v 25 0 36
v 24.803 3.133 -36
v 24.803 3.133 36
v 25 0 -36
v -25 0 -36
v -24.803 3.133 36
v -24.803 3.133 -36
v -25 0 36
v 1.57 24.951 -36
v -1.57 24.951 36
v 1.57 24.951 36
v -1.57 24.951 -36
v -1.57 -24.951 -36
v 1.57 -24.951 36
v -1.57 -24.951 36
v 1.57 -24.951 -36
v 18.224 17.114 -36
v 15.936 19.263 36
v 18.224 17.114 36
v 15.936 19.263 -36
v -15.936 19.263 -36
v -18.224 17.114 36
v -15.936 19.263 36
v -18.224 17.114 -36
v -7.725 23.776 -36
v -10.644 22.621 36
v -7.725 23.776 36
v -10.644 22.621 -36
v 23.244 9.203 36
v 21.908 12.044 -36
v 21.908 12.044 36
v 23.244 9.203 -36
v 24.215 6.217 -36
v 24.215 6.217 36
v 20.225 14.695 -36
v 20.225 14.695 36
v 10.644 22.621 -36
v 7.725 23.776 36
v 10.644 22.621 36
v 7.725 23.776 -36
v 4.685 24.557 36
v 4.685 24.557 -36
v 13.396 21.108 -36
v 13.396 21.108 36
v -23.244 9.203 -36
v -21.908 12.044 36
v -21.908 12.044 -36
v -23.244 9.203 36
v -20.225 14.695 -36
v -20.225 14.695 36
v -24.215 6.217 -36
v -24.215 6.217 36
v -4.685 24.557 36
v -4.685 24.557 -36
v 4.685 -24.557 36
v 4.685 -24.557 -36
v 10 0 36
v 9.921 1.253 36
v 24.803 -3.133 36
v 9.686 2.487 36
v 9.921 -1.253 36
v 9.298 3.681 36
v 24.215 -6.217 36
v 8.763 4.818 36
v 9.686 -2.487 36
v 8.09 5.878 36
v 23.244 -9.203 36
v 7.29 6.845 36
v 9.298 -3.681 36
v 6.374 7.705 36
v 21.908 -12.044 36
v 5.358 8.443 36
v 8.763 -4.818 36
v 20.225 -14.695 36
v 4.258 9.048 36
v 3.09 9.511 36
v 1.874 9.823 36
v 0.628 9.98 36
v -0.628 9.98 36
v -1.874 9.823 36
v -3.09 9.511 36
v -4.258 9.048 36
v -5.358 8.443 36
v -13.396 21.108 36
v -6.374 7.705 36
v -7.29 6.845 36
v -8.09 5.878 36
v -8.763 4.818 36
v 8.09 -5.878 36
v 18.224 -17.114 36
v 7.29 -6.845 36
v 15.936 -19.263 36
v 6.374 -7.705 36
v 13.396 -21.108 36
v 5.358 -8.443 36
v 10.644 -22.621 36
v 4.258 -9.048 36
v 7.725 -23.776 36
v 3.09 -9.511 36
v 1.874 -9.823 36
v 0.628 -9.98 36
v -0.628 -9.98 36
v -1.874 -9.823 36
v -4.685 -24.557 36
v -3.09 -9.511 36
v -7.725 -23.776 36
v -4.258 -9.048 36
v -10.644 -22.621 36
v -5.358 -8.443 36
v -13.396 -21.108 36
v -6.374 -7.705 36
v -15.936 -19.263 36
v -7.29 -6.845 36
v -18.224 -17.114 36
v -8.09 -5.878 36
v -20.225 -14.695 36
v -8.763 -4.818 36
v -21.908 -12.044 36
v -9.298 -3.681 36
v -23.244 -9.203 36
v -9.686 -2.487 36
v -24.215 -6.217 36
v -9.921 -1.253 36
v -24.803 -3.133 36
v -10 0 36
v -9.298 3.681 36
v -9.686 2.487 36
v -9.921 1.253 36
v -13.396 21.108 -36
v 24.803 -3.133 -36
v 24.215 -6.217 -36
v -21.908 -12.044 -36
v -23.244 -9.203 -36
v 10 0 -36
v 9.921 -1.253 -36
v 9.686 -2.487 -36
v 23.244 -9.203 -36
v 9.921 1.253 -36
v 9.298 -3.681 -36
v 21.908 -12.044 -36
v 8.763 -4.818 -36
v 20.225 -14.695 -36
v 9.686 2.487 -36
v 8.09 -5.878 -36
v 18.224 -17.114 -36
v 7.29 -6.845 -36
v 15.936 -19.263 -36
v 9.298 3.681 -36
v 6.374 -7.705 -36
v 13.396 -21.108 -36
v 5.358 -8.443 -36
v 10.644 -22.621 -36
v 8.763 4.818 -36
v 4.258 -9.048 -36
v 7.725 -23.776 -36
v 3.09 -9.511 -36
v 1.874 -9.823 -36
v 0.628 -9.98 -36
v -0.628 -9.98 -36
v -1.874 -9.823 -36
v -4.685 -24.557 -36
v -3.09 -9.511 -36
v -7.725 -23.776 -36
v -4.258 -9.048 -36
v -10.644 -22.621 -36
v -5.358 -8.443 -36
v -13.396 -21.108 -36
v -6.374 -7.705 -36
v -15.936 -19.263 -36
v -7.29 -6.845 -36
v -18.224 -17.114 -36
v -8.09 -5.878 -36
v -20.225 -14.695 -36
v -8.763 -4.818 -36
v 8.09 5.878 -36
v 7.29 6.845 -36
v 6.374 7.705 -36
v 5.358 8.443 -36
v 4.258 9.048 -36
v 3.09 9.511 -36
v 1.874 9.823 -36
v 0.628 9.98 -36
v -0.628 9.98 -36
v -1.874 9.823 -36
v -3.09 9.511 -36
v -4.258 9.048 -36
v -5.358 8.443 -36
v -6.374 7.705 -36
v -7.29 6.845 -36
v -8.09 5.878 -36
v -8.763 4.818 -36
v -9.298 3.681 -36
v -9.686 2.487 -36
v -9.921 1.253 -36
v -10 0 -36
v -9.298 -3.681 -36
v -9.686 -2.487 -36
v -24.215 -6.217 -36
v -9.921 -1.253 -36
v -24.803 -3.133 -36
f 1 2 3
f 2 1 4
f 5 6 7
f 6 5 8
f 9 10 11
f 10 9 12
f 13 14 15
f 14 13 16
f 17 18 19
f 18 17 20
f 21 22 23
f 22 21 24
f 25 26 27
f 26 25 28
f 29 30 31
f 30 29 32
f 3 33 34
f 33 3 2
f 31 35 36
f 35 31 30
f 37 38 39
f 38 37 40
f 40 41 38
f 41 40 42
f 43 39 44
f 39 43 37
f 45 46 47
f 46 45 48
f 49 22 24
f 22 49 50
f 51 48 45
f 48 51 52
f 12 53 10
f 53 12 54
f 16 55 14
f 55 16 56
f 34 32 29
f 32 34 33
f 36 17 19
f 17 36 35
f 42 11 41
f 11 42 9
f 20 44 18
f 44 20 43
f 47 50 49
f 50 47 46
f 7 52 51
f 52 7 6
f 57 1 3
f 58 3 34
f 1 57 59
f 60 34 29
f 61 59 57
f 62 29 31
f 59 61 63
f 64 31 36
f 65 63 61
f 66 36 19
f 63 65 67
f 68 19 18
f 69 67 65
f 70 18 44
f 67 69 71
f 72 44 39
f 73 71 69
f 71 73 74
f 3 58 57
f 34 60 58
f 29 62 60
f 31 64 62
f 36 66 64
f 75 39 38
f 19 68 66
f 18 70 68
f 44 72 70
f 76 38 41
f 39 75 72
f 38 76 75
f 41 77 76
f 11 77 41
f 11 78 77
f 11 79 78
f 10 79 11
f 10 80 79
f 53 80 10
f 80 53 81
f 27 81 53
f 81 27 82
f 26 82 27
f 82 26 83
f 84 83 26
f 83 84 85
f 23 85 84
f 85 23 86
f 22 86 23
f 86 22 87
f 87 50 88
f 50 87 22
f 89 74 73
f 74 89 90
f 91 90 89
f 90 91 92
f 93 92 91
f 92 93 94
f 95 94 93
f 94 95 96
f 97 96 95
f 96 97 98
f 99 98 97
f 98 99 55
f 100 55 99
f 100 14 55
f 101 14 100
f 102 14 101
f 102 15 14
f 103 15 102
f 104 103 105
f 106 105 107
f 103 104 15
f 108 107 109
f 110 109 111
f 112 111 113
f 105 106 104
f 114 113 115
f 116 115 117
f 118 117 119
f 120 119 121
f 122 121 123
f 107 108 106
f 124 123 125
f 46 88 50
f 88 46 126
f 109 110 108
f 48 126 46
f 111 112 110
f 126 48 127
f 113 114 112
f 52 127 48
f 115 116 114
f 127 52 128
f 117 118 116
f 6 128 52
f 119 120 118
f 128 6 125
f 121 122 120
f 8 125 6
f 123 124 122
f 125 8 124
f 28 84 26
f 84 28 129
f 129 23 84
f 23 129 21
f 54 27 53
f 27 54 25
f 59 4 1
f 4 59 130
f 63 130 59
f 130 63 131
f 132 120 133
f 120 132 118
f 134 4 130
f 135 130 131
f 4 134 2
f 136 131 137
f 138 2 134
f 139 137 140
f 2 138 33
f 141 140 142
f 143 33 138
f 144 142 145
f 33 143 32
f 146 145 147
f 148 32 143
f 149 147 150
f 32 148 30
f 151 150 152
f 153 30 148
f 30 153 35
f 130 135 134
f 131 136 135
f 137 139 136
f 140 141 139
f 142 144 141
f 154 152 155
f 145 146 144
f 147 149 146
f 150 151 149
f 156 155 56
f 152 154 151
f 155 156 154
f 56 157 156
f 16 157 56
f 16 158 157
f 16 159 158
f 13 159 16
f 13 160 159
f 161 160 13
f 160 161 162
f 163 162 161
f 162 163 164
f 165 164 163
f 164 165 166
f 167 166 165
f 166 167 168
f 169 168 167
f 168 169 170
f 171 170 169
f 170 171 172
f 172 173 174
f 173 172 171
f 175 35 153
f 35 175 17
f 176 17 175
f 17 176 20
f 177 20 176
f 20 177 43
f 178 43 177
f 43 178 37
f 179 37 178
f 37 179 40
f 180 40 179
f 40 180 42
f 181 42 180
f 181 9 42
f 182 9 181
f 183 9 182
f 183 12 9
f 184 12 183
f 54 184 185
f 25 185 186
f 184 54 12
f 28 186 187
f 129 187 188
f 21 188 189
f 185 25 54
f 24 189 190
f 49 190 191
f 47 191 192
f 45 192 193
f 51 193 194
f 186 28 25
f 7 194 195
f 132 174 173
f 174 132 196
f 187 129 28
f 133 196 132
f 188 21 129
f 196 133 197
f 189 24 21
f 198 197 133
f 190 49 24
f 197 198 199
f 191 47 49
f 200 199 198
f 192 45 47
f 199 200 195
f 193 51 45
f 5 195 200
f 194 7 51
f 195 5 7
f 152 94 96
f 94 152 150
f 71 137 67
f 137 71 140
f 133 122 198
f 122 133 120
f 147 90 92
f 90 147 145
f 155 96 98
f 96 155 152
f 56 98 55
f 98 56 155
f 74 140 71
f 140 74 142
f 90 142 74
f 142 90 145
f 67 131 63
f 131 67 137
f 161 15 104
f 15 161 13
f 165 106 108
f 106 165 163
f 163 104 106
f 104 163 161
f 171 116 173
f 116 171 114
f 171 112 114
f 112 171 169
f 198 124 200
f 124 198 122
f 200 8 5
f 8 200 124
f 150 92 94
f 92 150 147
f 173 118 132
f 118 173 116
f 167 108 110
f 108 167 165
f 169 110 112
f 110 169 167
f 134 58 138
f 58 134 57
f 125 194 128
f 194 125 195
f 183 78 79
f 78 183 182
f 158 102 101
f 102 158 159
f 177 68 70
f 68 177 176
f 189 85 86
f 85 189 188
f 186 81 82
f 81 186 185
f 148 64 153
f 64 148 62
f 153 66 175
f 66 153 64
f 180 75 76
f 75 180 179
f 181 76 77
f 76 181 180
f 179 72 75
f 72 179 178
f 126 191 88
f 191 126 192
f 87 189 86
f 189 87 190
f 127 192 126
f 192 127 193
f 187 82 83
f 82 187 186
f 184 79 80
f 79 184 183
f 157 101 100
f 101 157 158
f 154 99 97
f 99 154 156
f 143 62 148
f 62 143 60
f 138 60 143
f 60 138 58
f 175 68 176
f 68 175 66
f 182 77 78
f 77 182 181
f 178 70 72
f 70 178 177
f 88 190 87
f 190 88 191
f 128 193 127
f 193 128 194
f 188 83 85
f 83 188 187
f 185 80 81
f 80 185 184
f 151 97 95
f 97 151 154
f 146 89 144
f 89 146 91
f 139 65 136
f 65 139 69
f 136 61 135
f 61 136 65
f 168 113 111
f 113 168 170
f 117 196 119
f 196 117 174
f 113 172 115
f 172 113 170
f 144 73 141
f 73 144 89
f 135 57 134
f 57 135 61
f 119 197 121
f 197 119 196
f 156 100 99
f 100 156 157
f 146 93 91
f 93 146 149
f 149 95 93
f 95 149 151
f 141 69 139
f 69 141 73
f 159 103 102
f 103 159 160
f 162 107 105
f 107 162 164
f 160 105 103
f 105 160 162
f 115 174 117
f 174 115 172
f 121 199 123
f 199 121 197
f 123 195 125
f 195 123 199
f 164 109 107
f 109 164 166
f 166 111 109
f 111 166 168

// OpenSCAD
$fn = 50;


difference() {
	union() {
		translate(v = [0, 0, -36.0000000000]) {
			cylinder(h = 72, r = 25.0000000000);
		}
	}
	union() {
		translate(v = [0, 0, -100.0000000000]) {
			cylinder(h = 200, r = 10);
		}
	}
}
